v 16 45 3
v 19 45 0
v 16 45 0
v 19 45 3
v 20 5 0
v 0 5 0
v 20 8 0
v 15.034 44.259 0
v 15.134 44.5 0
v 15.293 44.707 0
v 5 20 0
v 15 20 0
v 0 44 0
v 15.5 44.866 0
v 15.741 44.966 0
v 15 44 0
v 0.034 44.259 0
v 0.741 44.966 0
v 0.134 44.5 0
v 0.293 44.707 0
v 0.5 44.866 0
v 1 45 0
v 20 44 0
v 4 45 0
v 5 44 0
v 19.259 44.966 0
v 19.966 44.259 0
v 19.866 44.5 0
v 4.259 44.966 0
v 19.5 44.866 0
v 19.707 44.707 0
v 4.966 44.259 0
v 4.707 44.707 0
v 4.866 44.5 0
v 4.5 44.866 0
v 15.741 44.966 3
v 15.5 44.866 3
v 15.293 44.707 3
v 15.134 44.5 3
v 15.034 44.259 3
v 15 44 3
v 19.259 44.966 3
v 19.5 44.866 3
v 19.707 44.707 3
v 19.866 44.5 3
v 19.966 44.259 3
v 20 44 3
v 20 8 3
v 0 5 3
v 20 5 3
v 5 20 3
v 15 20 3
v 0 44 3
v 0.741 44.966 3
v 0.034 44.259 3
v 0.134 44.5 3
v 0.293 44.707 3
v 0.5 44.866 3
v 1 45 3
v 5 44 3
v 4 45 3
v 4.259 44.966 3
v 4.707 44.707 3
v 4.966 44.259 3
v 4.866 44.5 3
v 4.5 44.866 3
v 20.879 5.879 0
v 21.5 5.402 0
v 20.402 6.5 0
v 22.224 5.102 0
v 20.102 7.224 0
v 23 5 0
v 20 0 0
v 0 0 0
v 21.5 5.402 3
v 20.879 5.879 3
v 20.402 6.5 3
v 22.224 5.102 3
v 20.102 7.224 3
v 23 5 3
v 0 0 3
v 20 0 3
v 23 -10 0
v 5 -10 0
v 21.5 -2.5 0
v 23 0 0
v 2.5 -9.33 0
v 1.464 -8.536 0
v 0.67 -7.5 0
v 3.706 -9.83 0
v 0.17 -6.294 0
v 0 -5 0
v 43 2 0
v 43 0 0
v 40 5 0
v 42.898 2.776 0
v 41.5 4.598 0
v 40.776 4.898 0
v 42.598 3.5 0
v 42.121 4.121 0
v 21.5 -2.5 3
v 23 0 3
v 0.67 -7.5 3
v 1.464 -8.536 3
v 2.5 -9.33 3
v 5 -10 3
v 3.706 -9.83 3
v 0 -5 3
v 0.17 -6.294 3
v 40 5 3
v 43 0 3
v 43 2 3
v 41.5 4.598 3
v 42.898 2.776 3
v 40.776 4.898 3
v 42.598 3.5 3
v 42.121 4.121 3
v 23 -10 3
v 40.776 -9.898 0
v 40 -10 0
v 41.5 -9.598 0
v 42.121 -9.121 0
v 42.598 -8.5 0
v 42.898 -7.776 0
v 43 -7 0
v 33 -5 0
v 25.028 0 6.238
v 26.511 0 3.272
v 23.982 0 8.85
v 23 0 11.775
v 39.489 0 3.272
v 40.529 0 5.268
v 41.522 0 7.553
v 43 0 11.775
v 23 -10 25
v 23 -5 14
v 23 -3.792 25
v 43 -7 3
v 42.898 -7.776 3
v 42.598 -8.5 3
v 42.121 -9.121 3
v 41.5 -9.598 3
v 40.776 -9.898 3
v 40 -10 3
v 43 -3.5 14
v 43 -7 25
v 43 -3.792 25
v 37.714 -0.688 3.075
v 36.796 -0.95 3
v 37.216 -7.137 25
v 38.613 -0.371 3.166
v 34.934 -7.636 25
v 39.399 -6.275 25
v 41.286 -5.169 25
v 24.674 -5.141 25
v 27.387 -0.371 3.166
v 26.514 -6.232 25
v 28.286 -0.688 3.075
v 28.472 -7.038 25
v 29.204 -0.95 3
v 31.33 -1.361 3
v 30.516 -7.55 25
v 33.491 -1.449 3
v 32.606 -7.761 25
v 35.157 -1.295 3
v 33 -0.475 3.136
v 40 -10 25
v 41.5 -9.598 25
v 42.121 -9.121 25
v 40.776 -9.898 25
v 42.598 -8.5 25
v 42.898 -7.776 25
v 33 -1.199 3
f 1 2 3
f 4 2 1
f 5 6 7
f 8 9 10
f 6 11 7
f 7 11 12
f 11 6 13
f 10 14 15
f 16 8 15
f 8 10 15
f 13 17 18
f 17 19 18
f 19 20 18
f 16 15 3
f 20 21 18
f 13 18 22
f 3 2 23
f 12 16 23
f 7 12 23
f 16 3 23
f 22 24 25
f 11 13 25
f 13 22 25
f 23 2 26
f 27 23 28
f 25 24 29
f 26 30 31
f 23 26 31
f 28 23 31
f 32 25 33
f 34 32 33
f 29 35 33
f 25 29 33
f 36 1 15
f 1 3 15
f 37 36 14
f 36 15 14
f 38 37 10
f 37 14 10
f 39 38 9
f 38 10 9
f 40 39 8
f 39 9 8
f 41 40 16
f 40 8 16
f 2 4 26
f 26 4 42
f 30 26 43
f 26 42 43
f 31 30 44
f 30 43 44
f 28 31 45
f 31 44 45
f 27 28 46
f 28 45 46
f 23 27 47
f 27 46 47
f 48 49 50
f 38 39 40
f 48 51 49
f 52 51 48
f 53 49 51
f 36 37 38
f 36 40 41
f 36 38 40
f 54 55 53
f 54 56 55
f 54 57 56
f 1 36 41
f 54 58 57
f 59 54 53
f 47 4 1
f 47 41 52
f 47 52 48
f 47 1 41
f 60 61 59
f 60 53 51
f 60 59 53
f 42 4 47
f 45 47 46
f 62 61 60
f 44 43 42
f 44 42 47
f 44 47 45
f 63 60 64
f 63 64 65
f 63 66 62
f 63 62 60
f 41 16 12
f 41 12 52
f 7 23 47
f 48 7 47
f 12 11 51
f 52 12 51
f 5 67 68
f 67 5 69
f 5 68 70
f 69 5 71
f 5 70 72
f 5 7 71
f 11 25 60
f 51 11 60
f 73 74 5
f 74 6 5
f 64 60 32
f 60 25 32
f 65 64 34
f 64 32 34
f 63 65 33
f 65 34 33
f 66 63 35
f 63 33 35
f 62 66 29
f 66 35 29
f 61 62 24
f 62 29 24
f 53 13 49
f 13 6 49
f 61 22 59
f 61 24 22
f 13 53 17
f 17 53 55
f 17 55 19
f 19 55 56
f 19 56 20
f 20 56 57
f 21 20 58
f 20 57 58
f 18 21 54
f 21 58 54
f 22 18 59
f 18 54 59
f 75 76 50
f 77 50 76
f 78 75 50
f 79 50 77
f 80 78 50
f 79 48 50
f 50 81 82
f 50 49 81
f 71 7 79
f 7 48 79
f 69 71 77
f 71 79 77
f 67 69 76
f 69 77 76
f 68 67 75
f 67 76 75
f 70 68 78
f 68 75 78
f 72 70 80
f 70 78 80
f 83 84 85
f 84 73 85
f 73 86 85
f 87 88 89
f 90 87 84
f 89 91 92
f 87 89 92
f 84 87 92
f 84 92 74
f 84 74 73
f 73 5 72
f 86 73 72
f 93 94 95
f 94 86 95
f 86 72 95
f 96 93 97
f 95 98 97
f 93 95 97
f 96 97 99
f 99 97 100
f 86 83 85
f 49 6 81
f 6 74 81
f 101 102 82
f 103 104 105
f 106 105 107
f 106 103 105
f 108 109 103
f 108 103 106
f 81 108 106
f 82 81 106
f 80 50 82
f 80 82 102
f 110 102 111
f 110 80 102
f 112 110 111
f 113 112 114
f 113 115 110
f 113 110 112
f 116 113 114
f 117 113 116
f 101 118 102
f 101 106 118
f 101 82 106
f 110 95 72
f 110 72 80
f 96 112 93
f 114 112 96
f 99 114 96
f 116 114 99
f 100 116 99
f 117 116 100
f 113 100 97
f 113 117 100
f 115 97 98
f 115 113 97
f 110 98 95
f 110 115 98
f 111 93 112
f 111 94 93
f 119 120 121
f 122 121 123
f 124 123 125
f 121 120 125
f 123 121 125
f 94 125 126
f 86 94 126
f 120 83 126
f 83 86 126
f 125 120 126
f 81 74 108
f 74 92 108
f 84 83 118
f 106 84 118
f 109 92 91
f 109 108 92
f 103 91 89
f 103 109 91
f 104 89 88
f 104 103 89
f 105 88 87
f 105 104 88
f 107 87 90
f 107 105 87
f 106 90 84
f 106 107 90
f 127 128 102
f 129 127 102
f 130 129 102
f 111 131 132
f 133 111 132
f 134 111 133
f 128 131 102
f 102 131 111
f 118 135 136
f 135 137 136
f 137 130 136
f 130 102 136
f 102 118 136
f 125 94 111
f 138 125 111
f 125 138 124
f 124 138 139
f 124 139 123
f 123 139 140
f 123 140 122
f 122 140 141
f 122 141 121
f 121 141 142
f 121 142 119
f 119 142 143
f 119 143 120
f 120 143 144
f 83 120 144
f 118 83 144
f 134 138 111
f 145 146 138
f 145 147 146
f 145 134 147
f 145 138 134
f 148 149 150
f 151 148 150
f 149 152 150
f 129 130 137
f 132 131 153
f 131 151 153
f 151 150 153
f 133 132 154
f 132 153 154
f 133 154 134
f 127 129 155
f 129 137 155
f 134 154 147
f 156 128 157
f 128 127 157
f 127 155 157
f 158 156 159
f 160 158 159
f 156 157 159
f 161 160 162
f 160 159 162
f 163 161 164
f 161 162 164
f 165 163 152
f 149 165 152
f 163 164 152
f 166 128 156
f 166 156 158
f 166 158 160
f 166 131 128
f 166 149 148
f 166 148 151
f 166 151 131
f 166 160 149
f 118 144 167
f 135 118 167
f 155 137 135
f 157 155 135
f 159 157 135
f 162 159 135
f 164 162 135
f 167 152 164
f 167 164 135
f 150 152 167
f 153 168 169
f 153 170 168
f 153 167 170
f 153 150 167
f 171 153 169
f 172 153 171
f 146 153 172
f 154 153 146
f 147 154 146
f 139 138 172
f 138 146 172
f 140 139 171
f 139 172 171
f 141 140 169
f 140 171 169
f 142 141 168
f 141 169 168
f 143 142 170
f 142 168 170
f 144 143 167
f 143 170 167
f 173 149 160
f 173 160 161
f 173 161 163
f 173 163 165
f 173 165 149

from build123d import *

# Parameters (mm, degrees)
CYLINDER001_R       = 3
CYLINDER001_DEPTH   = 10
CYLINDER_R          = 15
CYLINDER_DEPTH      = 27
CYLINDER_ROLL_ANGLE = 15.99999
BOX002_W            = 20
BOX002_H            = 10
BOX002_DEPTH        = 25
BOX004_W            = 3
BOX004_H            = 3
BOX004_DEPTH        = 3
BOX003_W            = 43
BOX003_H            = 15
BOX003_DEPTH        = 3
BOX001_W            = 10
BOX001_H            = 30
BOX001_DEPTH        = 10
BOX_W               = 20
BOX_H               = 45
BOX_DEPTH           = 3
FILLET_R            = 5
FILLET001_R         = 3
FILLET002_R         = 3
FILLET003_R         = 1
FILLET004_R         = 1
FILLET005_R         = 1
FILLET006_R         = 1


with BuildPart() as cylinder001:
    # Cylinder001 → Cylinder001 (new body)
    with BuildSketch(Plane(origin=(23, 8, -1), x_dir=(1, 0, 0), z_dir=(0, 0, 1))):
        Circle(CYLINDER001_R)
    extrude(amount=CYLINDER001_DEPTH)


with BuildPart() as cylinder:
    # Cylinder → Cylinder (new body)
    with BuildSketch(Plane.XY):
        Circle(CYLINDER_R)
    extrude(amount=CYLINDER_DEPTH)


with BuildPart() as cylinder_1:
    # Cylinder roll: moved
    add(cylinder.part.rotate(Axis((0, 0, 0), (1, 0, 0)), CYLINDER_ROLL_ANGLE))


with BuildPart() as cylinder_2:
    # Cylinder placement: moved
    add(cylinder_1.part.moved(Location((30, 13, 7))))


with BuildPart() as prise:
    # Box002 → Box002 (new body)
    with BuildSketch(Plane(origin=(20, -10, 0), x_dir=(1, 0, 0), z_dir=(0, 0, 1))):
        with Locations((10, 5)):
            Rectangle(BOX002_W, BOX002_H)
    extrude(amount=BOX002_DEPTH)

    # Cut001: cut Cylinder
    add(cylinder_2.part, mode=Mode.SUBTRACT)


with BuildPart() as prise_1:
    # Cut001 placement: moved
    add(prise.part.moved(Location((3, 0, 0))))


with BuildPart() as finition_int_rieure:
    # Box004 → Box004 (new body)
    with BuildSketch(Plane(origin=(20, 5, 0), x_dir=(1, 0, 0), z_dir=(0, 0, 1))):
        with Locations((1.5, 1.5)):
            Rectangle(BOX004_W, BOX004_H)
    extrude(amount=BOX004_DEPTH)


with BuildPart() as extension_plan:
    # Box003 → Box003 (new body)
    with BuildSketch(Plane(origin=(0, -10, 0), x_dir=(1, 0, 0), z_dir=(0, 0, 1))):
        with Locations((21.5, 7.5)):
            Rectangle(BOX003_W, BOX003_H)
    extrude(amount=BOX003_DEPTH)


with BuildPart() as box02:
    # Box001 → Box001 (new body)
    with BuildSketch(Plane(origin=(5, 20, -3), x_dir=(1, 0, 0), z_dir=(0, 0, 1))):
        with Locations((5, 15)):
            Rectangle(BOX001_W, BOX001_H)
    extrude(amount=BOX001_DEPTH)


with BuildPart() as cut002:
    # Box → Box (new body)
    with BuildSketch(Plane.XY):
        with Locations((10, 22.5)):
            Rectangle(BOX_W, BOX_H)
    extrude(amount=BOX_DEPTH)

    # Cut: cut Box02
    add(box02.part, mode=Mode.SUBTRACT)

    # Fusion: union Extension plan
    add(extension_plan.part)

    # Fusion001: union Finition intérieure
    add(finition_int_rieure.part)

    # Fusion002: union Prise
    add(prise_1.part)

    # Fillet
    fillet_edges = [cut002.edges().sort_by_distance(p)[0] for p in [
        (0, -10, 1.5),
    ]]
    fillet(fillet_edges, radius=FILLET_R)

    # Fillet001
    fillet001_edges = [cut002.edges().sort_by_distance(p)[0] for p in [
        (43, 5, 1.5),
    ]]
    fillet(fillet001_edges, radius=FILLET001_R)

    # Fillet002
    fillet002_edges = [cut002.edges().sort_by_distance(p)[0] for p in [
        (43, -10, 14),
    ]]
    fillet(fillet002_edges, radius=FILLET002_R)

    # Fillet003
    fillet003_edges = [cut002.edges().sort_by_distance(p)[0] for p in [
        (5, 45, 1.5),
    ]]
    fillet(fillet003_edges, radius=FILLET003_R)

    # Fillet004
    fillet004_edges = [cut002.edges().sort_by_distance(p)[0] for p in [
        (20, 45, 1.5),
    ]]
    fillet(fillet004_edges, radius=FILLET004_R)

    # Fillet005
    fillet005_edges = [cut002.edges().sort_by_distance(p)[0] for p in [
        (0, 45, 1.5),
    ]]
    fillet(fillet005_edges, radius=FILLET005_R)

    # Fillet006
    fillet006_edges = [cut002.edges().sort_by_distance(p)[0] for p in [
        (15, 45, 1.5),
    ]]
    fillet(fillet006_edges, radius=FILLET006_R)

    # Cut002: cut Cylinder001
    add(cylinder001.part, mode=Mode.SUBTRACT)


solid = cut002.part
